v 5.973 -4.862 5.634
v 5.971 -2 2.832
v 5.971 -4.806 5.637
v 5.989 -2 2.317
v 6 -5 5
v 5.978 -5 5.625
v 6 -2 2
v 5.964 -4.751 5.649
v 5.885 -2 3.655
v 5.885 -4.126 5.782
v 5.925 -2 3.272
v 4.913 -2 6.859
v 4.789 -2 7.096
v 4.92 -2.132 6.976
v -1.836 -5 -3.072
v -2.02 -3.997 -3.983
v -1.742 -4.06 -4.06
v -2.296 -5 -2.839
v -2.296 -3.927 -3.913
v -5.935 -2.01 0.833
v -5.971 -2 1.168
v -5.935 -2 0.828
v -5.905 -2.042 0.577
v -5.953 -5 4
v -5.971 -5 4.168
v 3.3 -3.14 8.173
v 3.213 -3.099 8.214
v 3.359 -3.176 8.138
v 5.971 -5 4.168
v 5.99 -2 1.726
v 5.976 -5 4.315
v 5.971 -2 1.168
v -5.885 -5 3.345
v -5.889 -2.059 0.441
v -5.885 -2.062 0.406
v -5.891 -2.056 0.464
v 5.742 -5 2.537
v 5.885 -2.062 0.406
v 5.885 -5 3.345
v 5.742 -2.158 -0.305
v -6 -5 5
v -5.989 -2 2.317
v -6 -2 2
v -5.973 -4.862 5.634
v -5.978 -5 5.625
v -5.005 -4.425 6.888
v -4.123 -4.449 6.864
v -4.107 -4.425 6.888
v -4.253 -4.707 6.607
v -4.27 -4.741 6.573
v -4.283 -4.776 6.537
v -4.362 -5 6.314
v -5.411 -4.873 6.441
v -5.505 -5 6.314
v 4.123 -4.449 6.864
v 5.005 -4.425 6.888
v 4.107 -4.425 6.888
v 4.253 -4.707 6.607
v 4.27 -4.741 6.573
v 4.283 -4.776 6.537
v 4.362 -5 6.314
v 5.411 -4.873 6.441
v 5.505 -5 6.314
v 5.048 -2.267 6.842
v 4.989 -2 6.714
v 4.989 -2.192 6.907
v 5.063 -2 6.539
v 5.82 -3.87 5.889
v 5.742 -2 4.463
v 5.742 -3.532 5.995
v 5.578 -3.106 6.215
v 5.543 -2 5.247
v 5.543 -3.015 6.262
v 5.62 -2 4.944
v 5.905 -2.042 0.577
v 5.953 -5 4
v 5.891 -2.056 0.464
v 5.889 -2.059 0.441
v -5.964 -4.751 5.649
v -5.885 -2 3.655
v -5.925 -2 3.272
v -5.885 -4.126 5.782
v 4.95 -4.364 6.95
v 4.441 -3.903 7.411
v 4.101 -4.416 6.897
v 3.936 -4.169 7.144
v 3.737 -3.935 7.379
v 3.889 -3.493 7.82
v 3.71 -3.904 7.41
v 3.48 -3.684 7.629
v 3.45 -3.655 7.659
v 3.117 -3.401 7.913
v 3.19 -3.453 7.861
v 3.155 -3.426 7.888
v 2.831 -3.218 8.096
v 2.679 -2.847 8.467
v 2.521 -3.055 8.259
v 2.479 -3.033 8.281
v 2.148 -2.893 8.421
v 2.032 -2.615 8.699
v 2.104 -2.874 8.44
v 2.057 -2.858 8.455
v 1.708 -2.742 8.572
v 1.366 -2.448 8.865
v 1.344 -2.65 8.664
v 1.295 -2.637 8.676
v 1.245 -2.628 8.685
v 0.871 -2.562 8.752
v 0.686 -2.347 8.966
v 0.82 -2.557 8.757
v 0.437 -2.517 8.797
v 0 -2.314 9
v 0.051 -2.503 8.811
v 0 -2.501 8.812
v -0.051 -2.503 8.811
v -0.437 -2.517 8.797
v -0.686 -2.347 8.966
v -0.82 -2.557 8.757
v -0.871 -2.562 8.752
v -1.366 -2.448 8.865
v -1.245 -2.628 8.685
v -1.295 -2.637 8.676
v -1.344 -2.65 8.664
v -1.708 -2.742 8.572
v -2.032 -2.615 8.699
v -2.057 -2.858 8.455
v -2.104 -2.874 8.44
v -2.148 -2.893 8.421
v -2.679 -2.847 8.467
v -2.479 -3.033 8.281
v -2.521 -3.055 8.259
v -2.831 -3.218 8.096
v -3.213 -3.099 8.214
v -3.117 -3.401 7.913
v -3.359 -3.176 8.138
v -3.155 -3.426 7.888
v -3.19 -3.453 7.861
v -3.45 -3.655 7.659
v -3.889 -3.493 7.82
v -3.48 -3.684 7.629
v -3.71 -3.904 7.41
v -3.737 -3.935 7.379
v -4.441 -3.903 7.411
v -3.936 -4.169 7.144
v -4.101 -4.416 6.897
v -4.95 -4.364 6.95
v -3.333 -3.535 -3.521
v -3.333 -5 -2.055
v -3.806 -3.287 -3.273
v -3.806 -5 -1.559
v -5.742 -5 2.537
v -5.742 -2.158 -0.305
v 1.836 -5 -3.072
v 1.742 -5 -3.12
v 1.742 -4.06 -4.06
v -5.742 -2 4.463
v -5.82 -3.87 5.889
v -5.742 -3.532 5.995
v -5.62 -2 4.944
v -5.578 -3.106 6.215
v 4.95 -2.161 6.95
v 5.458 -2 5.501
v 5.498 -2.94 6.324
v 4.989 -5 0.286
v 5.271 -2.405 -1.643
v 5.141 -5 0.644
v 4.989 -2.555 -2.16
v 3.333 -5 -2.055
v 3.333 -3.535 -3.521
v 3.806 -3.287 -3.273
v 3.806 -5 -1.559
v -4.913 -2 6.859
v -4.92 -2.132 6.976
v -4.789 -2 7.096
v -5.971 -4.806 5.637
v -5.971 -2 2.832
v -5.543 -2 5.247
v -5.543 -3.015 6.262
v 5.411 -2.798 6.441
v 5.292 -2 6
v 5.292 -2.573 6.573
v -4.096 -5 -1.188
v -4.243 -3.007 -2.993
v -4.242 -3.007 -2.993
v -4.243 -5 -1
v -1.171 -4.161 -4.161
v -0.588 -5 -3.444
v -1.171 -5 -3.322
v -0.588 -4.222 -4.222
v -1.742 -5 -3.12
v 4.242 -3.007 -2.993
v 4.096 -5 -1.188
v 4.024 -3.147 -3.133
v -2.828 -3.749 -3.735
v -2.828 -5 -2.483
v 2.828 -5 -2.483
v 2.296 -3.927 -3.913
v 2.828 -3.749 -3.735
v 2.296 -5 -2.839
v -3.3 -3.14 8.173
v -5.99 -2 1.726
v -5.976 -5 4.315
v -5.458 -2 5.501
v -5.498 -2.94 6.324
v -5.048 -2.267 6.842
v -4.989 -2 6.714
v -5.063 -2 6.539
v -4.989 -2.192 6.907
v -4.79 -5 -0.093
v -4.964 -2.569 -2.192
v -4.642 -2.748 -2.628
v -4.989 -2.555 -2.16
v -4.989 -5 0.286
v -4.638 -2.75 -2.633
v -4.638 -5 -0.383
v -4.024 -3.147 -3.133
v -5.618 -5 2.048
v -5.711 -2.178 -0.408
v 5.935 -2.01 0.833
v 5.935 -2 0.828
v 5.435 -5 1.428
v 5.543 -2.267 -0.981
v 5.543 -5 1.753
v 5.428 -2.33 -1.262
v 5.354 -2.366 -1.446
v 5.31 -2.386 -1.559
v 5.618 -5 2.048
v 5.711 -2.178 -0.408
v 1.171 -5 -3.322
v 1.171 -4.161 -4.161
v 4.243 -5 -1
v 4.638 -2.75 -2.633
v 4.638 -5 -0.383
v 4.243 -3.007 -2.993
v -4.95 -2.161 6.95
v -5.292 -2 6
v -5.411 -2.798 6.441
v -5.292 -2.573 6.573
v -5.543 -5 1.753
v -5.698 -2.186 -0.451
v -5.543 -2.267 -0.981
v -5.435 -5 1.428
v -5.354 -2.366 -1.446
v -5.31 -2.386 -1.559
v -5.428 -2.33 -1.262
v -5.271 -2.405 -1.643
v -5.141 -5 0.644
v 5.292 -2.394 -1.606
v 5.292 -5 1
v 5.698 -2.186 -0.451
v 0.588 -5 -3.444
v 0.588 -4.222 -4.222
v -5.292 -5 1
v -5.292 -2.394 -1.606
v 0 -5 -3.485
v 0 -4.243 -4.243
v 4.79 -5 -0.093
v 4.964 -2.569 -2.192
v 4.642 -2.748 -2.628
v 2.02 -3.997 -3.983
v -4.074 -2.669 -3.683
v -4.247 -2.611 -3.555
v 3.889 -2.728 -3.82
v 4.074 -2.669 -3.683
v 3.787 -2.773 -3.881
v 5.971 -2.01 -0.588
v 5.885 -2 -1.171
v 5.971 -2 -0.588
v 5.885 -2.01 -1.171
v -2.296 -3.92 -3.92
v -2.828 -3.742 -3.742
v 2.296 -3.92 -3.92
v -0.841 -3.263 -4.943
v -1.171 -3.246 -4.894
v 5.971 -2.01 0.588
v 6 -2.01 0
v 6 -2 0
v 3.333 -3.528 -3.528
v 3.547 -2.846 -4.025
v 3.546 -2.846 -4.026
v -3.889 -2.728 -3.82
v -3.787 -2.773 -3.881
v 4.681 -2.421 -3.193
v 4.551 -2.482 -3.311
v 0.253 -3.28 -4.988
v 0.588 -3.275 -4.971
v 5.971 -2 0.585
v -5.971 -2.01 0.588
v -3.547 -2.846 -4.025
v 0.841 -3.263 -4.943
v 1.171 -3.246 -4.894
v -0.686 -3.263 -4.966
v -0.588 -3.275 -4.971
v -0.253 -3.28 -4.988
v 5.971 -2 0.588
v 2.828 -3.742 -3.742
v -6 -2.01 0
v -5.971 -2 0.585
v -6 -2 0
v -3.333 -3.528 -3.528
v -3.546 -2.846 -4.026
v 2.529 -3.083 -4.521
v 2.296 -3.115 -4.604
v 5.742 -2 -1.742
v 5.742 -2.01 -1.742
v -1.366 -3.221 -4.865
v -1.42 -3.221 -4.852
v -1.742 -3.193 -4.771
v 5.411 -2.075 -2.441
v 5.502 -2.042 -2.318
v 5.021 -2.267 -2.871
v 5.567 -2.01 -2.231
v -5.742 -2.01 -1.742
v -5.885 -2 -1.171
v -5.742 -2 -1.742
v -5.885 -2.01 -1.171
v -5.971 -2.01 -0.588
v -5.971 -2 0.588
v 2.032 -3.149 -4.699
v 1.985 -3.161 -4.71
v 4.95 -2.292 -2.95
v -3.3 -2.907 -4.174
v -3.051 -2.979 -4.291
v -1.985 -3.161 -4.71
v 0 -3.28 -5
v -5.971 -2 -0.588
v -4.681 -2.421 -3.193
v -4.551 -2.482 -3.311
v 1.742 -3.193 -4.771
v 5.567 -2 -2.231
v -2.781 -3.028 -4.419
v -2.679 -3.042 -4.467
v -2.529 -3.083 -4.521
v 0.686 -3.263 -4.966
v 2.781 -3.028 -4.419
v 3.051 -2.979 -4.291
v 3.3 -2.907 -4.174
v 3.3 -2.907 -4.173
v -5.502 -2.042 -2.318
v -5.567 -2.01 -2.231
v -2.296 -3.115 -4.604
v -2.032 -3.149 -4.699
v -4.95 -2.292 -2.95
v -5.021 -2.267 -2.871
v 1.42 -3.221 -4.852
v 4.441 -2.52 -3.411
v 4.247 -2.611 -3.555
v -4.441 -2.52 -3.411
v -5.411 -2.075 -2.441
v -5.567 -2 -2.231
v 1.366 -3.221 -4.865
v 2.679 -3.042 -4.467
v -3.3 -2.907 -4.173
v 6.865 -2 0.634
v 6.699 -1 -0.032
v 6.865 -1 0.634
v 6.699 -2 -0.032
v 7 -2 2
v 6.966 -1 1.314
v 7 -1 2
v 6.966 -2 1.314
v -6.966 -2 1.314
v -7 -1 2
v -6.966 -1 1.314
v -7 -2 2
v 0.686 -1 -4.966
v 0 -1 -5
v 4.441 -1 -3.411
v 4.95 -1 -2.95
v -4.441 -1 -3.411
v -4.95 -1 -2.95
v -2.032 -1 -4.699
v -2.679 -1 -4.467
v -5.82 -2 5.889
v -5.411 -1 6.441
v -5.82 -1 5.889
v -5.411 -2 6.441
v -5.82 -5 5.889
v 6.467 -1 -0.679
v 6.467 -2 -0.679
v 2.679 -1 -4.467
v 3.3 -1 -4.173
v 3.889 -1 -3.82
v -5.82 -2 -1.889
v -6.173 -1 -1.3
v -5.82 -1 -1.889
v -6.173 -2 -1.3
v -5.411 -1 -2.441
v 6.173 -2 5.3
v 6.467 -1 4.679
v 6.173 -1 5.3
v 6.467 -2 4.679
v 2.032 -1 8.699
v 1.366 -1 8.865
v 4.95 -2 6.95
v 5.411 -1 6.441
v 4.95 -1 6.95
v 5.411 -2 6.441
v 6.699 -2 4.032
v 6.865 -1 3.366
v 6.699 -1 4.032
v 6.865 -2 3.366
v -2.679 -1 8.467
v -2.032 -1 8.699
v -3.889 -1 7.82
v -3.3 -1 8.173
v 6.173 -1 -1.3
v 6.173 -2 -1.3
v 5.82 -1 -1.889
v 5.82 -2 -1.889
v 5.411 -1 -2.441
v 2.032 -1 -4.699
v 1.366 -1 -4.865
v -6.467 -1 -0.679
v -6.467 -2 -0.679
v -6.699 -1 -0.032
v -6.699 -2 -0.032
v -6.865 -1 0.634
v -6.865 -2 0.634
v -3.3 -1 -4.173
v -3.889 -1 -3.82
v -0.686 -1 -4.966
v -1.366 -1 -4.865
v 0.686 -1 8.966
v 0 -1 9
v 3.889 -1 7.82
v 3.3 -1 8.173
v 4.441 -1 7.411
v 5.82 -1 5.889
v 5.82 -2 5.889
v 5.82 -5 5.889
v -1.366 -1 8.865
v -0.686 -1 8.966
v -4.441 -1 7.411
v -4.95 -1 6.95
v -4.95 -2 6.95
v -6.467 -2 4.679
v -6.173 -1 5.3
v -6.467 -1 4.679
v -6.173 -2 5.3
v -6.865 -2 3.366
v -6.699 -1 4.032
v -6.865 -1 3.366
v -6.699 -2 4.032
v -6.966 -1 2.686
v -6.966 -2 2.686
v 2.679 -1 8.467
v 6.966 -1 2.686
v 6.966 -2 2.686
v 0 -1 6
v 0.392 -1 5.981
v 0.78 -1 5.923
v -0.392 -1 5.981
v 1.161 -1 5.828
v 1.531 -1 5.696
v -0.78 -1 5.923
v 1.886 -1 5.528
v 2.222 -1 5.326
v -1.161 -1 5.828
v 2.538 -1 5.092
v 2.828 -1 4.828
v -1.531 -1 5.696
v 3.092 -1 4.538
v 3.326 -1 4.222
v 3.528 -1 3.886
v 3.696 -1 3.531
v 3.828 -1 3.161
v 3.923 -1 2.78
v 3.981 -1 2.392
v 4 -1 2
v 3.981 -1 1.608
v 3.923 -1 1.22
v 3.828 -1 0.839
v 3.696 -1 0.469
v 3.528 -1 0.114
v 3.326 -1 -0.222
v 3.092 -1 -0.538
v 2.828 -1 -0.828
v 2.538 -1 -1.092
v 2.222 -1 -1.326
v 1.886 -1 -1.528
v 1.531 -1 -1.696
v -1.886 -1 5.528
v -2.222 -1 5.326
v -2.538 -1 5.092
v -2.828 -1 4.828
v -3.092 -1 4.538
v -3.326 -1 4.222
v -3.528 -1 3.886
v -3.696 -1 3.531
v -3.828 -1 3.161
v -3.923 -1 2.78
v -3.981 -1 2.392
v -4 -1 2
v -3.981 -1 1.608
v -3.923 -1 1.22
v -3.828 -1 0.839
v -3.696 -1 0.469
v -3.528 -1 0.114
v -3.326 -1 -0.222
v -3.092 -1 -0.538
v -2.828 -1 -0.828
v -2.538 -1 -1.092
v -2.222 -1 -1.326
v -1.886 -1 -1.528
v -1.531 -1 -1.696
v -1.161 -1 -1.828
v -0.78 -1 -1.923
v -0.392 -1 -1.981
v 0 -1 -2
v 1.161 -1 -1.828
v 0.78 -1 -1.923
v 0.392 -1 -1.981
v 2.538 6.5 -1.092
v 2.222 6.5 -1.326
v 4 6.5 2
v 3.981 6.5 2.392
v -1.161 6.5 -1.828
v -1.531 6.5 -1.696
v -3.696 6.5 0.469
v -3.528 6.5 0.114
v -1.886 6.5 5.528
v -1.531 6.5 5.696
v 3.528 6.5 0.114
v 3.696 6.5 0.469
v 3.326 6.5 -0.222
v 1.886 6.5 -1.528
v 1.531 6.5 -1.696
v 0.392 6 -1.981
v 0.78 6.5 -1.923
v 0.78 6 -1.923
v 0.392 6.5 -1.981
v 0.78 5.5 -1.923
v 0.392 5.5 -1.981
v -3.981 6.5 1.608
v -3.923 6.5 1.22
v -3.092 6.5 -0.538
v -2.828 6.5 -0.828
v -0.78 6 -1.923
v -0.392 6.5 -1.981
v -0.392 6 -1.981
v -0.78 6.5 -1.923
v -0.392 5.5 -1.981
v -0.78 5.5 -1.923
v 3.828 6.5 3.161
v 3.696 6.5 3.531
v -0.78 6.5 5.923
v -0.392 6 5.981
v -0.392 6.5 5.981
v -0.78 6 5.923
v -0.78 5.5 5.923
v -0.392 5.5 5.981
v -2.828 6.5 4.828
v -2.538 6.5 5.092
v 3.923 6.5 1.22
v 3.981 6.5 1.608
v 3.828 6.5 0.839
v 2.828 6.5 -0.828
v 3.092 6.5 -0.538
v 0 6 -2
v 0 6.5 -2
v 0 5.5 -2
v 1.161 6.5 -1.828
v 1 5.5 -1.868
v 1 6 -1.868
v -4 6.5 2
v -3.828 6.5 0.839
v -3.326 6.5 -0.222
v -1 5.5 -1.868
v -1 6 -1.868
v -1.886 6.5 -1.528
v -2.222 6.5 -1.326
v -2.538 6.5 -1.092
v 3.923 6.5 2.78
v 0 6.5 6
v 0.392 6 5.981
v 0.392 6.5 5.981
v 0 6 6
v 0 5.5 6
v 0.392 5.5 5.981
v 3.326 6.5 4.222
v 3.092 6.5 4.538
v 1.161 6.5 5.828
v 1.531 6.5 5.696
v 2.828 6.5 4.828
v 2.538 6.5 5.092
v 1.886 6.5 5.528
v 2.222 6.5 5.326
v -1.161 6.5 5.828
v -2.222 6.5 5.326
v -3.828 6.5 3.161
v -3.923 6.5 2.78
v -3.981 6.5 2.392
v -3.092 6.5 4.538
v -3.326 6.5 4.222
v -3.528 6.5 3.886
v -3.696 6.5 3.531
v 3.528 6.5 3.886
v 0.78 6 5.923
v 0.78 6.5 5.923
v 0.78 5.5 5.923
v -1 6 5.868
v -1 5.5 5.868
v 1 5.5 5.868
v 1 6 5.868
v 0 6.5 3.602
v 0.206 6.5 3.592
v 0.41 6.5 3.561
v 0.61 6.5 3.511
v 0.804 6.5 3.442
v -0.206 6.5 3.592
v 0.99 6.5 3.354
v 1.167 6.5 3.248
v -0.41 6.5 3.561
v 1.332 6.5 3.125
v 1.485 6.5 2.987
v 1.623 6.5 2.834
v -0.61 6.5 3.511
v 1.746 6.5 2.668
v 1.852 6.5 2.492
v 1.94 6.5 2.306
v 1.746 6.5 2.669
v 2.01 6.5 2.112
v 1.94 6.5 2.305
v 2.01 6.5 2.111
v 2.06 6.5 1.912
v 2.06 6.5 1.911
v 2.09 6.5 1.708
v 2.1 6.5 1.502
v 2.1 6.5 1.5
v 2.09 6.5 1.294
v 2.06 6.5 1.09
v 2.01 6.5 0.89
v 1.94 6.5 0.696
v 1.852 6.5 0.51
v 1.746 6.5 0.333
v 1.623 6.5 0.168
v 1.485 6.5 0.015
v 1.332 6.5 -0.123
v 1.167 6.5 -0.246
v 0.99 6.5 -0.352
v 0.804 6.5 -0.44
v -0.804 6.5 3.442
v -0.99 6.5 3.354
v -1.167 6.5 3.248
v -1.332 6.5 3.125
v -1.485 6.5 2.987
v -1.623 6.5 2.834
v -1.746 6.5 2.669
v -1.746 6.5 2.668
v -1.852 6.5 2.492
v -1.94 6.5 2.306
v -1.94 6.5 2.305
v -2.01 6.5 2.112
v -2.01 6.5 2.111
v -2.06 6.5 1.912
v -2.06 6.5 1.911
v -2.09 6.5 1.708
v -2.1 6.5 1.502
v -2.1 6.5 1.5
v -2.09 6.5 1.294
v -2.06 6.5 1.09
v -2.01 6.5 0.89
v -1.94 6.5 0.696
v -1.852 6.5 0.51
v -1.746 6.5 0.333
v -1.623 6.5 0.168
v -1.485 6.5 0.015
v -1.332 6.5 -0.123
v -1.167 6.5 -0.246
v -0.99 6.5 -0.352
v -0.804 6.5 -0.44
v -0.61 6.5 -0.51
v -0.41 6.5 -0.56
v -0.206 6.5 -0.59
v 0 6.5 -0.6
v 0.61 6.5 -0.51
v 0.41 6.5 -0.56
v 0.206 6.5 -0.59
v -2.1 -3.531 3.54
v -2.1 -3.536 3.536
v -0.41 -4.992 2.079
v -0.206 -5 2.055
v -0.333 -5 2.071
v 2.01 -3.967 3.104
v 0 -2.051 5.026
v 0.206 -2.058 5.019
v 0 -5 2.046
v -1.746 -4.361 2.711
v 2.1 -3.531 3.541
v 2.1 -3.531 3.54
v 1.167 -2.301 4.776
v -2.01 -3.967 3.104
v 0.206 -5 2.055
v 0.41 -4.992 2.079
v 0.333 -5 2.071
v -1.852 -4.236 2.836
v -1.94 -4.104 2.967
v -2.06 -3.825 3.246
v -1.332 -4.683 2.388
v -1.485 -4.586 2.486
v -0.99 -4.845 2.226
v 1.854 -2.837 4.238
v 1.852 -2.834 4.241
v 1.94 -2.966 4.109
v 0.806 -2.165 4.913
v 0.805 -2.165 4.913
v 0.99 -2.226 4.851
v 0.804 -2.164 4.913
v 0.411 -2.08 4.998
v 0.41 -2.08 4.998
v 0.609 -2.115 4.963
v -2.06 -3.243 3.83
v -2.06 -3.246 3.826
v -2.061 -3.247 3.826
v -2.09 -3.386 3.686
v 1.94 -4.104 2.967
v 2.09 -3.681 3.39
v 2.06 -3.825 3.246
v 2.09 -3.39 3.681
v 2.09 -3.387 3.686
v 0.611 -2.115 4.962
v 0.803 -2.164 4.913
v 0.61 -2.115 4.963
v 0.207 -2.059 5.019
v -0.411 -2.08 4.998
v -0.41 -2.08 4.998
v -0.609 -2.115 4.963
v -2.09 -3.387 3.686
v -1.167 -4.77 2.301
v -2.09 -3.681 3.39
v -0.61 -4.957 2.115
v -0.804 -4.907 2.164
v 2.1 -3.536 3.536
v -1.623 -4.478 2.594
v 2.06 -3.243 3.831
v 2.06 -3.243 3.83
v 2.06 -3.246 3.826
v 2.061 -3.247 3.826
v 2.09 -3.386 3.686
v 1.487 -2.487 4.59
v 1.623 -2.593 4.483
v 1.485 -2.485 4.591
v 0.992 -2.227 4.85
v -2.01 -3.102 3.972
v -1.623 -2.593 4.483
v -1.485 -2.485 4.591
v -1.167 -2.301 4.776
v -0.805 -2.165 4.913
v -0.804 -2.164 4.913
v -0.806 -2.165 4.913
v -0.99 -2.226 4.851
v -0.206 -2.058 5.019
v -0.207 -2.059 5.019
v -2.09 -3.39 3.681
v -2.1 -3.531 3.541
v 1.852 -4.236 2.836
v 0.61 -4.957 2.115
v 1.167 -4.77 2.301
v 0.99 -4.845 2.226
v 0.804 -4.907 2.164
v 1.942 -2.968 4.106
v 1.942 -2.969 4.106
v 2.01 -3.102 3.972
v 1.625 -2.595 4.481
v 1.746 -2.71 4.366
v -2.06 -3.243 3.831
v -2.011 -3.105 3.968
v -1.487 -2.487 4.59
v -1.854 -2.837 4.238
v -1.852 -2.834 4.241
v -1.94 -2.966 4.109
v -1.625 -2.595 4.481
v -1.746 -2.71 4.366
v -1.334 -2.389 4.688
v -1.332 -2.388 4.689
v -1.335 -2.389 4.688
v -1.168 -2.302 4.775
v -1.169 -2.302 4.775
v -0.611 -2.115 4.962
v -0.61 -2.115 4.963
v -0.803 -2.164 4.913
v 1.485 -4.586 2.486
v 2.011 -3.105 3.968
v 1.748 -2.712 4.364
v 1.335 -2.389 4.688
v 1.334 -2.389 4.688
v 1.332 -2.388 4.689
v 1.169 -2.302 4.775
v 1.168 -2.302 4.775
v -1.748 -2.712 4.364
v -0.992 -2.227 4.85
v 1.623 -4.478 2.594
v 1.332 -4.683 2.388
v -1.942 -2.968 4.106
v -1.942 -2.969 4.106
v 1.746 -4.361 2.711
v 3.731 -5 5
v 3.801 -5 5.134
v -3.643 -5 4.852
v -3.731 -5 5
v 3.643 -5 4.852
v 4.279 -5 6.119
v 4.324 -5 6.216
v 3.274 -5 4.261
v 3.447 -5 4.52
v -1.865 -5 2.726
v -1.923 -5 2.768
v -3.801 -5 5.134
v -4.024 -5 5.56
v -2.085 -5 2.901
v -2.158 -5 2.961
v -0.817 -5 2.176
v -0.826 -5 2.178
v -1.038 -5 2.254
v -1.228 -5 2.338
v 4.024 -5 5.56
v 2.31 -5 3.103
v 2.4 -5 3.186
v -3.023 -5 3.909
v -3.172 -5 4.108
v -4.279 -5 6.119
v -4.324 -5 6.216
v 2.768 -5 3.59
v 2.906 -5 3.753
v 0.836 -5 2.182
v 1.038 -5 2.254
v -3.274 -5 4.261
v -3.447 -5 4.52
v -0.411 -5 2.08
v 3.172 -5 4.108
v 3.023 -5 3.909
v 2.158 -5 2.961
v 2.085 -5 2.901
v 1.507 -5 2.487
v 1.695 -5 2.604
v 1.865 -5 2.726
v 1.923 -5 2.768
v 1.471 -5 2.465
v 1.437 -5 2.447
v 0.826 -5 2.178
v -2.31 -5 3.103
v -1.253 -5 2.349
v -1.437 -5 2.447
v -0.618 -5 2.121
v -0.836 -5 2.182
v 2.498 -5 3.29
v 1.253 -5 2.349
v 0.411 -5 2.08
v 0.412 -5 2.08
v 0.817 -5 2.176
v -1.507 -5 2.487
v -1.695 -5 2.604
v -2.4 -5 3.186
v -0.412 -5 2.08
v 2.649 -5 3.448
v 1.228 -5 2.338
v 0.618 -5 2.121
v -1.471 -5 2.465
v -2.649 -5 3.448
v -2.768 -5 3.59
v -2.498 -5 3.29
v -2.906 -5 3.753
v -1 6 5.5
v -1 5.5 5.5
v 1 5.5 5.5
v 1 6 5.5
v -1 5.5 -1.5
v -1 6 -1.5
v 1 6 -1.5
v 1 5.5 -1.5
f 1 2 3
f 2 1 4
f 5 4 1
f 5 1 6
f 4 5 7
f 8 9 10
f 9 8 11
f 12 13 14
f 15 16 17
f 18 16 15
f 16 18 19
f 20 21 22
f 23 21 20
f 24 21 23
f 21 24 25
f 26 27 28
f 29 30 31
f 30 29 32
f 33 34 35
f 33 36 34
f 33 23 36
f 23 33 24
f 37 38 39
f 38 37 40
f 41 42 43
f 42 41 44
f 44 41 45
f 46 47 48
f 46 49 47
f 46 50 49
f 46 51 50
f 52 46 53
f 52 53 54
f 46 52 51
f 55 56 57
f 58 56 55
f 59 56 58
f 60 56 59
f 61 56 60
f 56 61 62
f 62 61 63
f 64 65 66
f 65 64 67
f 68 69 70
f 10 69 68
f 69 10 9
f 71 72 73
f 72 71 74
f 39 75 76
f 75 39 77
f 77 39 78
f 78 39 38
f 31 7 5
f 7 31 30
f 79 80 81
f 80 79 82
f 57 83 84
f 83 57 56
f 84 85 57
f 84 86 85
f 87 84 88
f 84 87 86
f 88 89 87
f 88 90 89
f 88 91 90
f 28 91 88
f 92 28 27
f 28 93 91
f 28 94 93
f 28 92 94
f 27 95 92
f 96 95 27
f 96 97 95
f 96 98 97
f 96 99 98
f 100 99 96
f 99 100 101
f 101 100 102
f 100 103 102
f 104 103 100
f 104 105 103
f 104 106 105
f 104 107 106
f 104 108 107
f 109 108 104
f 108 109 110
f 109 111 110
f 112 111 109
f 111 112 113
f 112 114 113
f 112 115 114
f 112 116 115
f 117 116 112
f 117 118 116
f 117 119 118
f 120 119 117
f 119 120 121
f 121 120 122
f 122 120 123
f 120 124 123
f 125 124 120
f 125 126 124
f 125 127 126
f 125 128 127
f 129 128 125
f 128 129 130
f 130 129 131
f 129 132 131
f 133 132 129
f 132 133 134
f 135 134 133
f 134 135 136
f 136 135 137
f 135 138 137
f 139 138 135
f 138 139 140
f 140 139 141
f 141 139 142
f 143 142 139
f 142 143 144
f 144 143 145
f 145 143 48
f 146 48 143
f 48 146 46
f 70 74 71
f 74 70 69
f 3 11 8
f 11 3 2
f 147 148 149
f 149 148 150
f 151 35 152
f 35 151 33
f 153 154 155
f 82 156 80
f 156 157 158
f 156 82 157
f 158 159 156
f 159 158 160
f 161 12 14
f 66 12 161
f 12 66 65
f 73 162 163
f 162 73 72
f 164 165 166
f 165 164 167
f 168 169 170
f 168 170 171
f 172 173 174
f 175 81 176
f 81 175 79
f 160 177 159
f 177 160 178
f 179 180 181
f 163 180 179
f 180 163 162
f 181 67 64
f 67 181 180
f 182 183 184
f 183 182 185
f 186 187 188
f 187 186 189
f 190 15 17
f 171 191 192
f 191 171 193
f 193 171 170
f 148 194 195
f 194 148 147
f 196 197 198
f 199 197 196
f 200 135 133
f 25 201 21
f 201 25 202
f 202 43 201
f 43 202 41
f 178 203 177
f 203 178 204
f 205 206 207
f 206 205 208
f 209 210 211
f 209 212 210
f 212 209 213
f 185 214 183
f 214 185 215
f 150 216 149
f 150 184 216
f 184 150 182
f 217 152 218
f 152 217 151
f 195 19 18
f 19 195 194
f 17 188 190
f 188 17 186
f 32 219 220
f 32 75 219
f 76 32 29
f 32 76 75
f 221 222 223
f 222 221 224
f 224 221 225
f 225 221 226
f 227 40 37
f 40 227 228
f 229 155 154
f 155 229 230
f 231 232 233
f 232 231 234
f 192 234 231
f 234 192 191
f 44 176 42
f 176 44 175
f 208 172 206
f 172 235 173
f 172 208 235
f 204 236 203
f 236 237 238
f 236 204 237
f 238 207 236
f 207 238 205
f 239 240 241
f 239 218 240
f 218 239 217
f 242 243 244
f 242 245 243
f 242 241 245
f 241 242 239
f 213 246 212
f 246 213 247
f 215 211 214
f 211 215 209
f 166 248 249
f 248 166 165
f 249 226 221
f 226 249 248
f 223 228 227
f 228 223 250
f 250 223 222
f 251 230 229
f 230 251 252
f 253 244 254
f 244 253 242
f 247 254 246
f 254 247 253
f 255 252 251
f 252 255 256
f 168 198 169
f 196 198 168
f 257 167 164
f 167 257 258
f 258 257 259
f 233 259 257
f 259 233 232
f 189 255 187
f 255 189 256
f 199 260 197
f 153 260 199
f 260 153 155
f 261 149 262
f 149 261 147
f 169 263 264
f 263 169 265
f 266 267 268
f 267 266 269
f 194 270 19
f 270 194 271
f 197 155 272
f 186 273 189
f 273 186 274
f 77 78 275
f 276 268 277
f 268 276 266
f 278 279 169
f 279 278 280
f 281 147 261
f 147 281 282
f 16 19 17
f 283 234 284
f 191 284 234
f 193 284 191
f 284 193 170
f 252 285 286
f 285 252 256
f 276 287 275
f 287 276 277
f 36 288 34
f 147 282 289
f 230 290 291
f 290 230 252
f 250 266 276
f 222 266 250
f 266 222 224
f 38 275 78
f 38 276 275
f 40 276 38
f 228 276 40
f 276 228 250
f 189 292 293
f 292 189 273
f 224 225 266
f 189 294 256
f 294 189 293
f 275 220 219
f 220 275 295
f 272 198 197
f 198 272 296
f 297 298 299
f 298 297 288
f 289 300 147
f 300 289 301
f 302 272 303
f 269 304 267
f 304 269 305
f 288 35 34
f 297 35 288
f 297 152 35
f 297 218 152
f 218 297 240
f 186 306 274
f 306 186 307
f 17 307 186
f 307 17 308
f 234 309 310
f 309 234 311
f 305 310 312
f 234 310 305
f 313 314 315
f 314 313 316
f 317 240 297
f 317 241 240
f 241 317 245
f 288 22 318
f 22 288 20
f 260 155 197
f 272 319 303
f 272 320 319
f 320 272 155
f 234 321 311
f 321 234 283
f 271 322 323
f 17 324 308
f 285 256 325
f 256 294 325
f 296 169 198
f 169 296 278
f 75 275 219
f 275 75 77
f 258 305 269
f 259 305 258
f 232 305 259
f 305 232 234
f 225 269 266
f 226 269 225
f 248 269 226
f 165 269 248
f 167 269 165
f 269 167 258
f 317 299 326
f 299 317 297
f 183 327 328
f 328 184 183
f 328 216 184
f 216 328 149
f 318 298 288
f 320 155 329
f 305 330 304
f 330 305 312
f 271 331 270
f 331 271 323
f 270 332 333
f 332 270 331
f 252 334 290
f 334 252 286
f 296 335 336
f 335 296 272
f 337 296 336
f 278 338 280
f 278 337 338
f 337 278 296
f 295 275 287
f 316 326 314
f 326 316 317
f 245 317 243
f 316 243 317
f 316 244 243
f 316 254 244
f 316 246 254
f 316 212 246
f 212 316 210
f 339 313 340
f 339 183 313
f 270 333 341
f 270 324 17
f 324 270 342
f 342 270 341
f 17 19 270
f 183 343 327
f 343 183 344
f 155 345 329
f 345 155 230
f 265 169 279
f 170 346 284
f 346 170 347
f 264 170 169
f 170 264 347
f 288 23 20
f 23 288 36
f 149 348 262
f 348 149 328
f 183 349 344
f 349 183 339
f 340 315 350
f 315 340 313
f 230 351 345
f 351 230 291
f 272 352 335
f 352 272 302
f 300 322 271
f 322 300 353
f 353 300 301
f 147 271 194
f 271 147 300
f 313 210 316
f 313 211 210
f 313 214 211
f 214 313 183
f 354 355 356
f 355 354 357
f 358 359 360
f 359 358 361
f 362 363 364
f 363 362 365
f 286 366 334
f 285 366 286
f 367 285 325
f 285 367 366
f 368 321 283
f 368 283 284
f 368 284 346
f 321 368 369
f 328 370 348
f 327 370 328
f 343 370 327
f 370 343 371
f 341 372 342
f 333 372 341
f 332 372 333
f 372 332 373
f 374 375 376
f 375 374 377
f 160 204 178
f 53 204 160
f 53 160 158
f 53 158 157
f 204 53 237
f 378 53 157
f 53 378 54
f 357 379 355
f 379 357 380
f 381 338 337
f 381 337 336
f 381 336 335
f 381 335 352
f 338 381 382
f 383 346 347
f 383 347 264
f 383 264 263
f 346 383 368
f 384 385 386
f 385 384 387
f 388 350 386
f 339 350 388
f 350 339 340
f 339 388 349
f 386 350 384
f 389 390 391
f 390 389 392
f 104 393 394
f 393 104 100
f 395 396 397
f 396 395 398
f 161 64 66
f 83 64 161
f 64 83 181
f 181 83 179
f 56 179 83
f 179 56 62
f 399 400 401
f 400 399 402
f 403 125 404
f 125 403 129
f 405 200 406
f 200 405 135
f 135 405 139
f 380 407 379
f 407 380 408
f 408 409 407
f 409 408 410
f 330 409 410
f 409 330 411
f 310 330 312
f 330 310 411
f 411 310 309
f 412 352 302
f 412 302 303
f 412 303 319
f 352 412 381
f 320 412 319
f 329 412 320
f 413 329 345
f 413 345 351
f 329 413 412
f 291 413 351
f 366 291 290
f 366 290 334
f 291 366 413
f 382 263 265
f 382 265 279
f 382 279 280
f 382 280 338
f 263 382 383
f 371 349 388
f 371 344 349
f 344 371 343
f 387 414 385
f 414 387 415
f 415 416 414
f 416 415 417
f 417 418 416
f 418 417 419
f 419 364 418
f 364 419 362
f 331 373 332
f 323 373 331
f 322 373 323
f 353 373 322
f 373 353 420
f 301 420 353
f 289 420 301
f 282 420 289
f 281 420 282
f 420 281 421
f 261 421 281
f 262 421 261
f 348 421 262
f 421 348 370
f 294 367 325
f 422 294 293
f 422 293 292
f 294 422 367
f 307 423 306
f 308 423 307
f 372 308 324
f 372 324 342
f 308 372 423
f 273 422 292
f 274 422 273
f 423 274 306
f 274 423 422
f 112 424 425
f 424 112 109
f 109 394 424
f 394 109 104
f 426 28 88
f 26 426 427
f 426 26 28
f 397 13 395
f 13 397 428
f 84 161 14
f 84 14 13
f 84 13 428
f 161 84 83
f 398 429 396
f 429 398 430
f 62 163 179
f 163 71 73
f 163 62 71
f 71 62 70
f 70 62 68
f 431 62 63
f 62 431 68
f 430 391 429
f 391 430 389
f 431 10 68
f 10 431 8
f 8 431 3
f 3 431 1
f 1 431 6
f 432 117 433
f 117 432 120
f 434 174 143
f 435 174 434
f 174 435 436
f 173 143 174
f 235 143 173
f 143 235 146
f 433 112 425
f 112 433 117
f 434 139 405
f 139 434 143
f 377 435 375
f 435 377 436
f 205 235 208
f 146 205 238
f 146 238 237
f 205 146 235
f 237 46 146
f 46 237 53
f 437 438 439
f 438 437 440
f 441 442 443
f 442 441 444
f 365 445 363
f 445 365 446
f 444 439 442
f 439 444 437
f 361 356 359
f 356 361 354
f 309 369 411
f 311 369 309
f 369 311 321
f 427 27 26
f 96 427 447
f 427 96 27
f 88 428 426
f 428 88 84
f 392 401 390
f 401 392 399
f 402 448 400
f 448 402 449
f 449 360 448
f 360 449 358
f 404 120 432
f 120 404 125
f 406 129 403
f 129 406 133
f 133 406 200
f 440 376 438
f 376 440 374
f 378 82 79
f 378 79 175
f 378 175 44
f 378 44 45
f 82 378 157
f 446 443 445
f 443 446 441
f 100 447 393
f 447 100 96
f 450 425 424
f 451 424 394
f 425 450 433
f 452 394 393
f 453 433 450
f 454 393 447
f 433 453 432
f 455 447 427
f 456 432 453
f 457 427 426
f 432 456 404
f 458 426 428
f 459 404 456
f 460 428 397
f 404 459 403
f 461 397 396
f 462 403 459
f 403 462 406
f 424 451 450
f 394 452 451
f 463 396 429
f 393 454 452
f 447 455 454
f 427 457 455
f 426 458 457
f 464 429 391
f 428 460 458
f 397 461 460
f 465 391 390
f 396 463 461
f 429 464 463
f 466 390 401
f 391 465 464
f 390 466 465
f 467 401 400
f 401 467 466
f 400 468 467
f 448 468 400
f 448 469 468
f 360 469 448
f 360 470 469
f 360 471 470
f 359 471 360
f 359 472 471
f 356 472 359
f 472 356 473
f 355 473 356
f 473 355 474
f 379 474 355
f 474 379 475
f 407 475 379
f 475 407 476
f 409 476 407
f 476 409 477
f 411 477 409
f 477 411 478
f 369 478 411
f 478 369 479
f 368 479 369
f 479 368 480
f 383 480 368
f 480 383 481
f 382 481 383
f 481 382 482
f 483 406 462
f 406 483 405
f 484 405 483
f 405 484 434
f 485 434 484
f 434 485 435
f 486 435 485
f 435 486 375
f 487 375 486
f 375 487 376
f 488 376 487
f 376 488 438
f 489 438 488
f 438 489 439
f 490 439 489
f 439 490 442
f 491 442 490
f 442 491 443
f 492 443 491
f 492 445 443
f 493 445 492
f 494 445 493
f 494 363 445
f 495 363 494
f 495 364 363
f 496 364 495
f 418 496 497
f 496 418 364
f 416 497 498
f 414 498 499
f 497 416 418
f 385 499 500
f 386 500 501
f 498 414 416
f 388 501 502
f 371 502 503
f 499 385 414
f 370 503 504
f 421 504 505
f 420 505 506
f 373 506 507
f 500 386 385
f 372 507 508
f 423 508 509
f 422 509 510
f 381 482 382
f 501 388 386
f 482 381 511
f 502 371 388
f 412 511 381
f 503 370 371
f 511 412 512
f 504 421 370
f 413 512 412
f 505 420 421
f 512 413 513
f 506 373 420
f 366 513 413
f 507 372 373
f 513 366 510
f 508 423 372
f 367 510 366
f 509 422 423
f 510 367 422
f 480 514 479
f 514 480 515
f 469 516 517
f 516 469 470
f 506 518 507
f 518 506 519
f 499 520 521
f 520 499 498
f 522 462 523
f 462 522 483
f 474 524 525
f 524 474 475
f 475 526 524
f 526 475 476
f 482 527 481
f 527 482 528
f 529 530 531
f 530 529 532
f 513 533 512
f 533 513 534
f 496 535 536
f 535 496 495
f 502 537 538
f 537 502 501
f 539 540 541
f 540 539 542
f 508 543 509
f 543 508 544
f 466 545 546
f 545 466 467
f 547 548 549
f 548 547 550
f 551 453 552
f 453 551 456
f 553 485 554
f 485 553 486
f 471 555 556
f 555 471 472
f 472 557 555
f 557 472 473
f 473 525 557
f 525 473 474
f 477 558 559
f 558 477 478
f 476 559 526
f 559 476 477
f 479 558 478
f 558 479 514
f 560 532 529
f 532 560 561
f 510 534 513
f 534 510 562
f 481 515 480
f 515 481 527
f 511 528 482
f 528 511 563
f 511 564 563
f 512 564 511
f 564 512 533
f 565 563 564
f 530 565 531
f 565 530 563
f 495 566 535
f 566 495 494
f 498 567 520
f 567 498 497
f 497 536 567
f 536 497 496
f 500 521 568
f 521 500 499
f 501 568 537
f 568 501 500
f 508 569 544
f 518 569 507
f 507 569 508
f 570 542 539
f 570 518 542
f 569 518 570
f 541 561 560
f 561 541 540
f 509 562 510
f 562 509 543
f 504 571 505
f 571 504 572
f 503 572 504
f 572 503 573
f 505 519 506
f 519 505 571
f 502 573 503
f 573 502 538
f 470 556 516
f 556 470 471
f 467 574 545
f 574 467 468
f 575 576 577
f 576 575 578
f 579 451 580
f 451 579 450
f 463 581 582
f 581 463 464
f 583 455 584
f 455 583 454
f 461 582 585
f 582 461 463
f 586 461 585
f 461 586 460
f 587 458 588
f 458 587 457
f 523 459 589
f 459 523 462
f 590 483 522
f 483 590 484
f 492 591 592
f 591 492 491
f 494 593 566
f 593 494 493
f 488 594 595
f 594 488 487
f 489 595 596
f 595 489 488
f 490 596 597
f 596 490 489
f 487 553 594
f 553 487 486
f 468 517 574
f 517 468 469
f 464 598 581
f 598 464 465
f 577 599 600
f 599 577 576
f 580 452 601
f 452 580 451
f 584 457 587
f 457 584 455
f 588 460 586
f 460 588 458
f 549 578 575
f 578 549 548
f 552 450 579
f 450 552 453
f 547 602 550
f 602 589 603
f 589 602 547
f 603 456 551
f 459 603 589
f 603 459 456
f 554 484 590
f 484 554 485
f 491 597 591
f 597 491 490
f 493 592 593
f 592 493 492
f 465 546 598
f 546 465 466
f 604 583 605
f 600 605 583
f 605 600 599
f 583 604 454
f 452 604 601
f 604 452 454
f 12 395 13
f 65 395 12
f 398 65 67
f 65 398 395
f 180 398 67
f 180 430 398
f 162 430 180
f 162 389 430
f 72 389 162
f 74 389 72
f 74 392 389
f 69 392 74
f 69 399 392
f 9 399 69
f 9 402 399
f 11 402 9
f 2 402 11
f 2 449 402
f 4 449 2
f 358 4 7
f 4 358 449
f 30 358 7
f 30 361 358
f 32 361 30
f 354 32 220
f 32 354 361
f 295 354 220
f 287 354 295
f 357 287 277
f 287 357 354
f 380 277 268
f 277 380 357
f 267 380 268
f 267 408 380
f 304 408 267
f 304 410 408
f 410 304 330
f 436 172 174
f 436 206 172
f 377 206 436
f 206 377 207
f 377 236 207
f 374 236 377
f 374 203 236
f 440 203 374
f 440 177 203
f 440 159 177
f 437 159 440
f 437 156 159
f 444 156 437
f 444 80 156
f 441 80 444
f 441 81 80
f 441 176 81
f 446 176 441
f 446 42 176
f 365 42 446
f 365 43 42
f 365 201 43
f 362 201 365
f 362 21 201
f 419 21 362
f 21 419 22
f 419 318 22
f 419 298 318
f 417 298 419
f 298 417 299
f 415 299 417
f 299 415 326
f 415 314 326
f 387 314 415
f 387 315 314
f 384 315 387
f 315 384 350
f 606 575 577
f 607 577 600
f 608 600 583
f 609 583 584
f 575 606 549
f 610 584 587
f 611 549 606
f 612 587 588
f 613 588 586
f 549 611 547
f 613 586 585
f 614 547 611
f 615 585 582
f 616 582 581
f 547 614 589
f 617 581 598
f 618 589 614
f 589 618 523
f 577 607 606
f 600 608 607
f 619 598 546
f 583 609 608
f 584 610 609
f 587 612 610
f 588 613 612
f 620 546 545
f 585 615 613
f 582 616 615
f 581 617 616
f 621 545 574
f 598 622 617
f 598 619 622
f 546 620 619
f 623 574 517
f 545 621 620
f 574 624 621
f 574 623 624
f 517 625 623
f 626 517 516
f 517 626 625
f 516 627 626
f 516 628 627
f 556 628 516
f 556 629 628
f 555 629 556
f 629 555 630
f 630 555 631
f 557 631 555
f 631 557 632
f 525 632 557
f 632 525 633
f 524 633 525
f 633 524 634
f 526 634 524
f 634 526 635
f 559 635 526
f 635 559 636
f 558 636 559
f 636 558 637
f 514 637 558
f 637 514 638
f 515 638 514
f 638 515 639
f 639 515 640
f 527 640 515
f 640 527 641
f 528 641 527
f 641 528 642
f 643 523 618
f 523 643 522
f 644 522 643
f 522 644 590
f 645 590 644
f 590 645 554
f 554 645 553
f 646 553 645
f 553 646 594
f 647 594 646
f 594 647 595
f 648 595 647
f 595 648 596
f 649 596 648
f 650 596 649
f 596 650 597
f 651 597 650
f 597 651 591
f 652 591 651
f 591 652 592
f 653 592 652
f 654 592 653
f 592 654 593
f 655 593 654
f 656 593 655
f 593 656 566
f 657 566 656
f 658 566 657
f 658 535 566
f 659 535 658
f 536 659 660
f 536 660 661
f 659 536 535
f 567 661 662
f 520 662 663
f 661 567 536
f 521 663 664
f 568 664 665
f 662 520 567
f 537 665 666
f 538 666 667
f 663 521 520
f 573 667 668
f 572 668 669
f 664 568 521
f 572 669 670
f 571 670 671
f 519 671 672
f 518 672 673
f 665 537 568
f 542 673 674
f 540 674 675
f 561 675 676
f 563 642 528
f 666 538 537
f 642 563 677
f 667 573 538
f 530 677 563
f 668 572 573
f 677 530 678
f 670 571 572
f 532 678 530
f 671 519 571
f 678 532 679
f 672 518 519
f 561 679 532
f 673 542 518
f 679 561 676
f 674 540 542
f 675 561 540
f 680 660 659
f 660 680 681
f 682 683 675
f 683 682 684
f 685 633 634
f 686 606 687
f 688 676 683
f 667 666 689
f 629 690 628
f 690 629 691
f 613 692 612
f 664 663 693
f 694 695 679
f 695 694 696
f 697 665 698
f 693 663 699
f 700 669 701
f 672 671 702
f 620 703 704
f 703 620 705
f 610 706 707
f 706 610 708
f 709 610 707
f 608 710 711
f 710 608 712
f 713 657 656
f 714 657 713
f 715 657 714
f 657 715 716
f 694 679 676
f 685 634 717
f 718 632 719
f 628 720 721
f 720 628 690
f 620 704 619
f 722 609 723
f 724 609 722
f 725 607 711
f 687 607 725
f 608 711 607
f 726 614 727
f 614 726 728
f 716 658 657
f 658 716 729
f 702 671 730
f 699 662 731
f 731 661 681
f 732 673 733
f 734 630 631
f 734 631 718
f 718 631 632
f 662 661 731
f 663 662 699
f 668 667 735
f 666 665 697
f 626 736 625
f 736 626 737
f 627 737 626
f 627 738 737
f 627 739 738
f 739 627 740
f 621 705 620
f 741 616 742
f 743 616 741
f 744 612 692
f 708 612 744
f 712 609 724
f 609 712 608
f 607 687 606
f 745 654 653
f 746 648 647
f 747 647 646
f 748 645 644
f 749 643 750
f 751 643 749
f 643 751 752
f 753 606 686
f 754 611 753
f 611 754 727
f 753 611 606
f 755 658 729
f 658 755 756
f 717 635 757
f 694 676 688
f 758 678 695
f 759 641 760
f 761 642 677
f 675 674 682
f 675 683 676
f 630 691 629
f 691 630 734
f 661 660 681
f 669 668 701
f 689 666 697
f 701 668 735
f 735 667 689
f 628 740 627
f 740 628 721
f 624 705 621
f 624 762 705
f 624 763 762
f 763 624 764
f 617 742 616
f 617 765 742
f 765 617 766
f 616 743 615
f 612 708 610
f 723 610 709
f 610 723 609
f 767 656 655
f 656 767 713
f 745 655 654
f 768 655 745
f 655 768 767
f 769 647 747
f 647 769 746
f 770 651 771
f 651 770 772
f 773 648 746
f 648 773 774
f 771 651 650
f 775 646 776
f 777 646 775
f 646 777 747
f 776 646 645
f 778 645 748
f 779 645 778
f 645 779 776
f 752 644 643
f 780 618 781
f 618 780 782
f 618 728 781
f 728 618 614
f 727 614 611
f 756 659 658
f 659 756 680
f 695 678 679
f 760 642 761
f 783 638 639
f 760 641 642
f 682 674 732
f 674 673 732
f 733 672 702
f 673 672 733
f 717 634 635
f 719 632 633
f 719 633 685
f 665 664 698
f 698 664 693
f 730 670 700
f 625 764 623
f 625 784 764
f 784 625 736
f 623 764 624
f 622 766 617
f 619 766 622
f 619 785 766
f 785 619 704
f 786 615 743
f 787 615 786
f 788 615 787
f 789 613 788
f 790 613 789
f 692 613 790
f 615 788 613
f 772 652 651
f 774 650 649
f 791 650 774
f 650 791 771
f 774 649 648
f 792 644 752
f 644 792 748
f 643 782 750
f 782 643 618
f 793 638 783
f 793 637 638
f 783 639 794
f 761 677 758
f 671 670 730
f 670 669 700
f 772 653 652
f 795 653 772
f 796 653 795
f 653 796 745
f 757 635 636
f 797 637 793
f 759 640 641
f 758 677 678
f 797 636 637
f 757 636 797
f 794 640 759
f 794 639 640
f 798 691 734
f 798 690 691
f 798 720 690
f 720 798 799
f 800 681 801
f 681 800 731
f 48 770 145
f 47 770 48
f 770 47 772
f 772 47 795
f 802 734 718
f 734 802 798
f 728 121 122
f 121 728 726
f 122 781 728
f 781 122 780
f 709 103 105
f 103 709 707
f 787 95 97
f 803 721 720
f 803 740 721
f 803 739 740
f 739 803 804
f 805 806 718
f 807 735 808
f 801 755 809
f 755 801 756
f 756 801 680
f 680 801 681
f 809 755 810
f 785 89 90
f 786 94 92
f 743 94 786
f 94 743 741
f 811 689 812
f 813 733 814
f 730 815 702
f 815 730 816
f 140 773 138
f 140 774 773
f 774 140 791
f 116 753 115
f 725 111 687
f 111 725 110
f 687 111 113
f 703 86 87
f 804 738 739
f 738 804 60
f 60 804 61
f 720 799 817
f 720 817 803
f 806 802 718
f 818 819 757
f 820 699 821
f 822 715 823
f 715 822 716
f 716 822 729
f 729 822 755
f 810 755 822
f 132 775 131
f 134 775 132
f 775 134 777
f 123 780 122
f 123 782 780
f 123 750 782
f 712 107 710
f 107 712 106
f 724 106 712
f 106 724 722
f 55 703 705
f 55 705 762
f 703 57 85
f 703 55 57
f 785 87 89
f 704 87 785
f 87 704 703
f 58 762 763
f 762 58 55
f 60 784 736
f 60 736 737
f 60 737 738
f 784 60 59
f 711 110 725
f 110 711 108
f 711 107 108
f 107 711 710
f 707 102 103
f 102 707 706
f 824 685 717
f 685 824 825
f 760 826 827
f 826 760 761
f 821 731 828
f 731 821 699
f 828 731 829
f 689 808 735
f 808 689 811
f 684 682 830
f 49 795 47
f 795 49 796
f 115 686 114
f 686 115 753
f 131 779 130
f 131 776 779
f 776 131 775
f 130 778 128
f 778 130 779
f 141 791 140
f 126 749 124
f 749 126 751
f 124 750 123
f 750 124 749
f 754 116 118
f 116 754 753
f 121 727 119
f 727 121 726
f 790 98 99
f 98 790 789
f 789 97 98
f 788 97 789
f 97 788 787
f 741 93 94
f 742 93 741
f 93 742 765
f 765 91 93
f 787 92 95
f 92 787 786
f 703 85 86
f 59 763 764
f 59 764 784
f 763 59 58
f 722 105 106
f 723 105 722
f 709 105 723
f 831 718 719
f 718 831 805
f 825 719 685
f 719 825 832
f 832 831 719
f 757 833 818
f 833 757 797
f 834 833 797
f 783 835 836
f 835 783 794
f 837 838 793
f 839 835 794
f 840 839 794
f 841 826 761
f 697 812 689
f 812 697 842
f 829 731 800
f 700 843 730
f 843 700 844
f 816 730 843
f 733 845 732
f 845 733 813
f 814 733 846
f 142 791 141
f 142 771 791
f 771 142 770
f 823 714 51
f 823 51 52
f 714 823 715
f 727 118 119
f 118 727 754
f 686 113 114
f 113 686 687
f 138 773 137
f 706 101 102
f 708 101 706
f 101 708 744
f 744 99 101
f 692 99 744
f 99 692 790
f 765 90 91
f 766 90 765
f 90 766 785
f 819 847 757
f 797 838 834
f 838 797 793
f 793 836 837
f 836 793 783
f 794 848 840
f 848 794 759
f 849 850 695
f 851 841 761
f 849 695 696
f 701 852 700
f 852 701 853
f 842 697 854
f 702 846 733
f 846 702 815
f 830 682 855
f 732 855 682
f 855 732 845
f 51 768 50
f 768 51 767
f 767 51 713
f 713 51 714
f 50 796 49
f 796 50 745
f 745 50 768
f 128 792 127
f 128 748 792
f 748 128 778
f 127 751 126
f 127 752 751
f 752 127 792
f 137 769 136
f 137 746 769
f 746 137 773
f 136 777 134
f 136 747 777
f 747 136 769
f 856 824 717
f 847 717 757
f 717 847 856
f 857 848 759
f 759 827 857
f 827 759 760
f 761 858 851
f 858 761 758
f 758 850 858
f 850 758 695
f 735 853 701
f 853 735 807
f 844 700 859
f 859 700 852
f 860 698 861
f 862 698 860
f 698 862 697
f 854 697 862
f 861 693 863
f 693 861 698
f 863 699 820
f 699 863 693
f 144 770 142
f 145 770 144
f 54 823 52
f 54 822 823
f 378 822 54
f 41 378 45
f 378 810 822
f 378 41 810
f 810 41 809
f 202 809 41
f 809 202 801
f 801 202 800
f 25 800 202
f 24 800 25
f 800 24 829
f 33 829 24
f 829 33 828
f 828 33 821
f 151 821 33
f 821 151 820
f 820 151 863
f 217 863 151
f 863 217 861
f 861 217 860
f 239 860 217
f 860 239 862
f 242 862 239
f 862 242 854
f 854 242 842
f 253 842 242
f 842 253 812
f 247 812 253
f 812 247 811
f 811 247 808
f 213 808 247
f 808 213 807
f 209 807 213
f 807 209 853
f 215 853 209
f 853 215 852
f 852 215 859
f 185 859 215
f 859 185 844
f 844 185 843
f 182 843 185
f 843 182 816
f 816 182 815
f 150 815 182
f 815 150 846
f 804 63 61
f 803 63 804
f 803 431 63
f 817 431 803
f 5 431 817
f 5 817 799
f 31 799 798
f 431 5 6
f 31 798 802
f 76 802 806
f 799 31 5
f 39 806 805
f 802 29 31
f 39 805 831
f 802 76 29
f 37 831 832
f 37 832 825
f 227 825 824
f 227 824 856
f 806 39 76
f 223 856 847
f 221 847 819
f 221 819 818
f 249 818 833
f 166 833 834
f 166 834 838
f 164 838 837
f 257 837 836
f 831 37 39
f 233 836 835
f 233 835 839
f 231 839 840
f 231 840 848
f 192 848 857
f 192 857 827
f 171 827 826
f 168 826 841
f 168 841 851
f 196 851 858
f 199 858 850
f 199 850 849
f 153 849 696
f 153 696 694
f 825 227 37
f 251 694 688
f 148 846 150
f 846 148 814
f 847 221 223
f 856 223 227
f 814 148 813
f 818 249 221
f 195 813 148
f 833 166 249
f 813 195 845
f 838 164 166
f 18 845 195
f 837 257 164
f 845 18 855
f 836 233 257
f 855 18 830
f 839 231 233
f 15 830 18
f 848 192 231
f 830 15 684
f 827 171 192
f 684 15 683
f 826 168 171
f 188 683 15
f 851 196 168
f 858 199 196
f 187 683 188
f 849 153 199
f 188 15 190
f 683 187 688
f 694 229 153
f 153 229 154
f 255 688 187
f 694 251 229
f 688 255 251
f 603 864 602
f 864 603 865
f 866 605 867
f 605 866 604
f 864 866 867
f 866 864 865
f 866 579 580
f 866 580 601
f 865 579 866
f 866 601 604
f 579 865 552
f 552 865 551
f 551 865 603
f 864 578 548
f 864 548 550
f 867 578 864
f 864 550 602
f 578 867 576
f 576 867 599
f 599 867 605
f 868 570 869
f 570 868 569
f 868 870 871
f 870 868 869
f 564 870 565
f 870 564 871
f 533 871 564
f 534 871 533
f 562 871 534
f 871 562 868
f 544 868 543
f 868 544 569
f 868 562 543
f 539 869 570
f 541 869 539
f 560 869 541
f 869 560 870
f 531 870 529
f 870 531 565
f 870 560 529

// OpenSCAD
// file: ptfe-port-dryer-box-config.scad
// PTFE Dryer Box Port — Shared Configuration

// Performance
preview = false;
$fn = preview ? 32 : 64;

// PTFE tube dimensions (standard 1.75mm filament tube)
ptfe_od        = 4.0;   // outer diameter of PTFE tube
ptfe_clearance = 0.1;   // clearance per side for snug push-fit
hole_dia       = ptfe_od + ptfe_clearance * 2;

// Dryer box wall
dryer_box_thickness = 6.5; // mm — wall thickness of the dryer box

// Filament port — angled section outside the wall where PTFE tube inserts
channel_angle  = 45;    // degrees upward from horizontal
port_dia       = 12.0;  // outer diameter of filament port
socket_depth   = 8.0;   // how far PTFE tube inserts into port
flare_dia      = hole_dia * 2.5; // chamfered opening diameter at tip
flare_depth    = 3.0;            // depth of the chamfer cone

// Wall plug — straight cylinder perpendicular through dryer box wall
plug_dia       = 8.0;   // outer diameter (match drill bit)
plug_z_offset  = 2.0;   // vertical offset to align with filament port

// Flange — vertical disc flush against outside wall surface
flange_dia     = 14.0;  // outer diameter of flange
flange_thick   = 2.0;   // flange thickness
// main file
// PTFE Dryer Box Port — Single-tube angled passthrough
// S-shaped: filament port angles 45° upward on outside of wall,
// wall plug goes straight through the dryer box wall.
// Flange sits flush and vertical against the wall surface.
include <ptfe-port-dryer-box-config.scad>

// Coordinate system:
//   Origin  = center of flange, on the wall surface
//   +Y      = into the wall (into the dryer box)
//   +Z      = up
//   -Y      = outward (away from wall)


// Cross-section settings
crosssection_view = false;
crosssection_axis = "y";  // "x", "y", or "z"

if (!crosssection_view) {
    ptfe_port_dryer_box();
} else {
    half = 50;
    intersection() {
        ptfe_port_dryer_box();
        if (crosssection_axis == "x")
            translate([0, -half, -half])
                cube([half, half * 2, half * 2]);
        if (crosssection_axis == "y")
            translate([-half, 0, -half])
                cube([half * 2, half, half * 2]);
        if (crosssection_axis == "z")
            translate([-half, -half, 0])
                cube([half * 2, half * 2, half]);
    }
}




module ptfe_port_dryer_box() {
    difference() {
        union() {
            // Flange — vertical disc on outside of wall, centered on wall plug
            translate([0, 0, plug_z_offset])
                    rotate([90, 0, 0])
                        cylinder(h = flange_thick, d = flange_dia);

            // Wall plug — straight through the wall, perpendicular
            translate([0, 0, plug_z_offset])
                    rotate([-90, 0, 0])
                        cylinder(h = dryer_box_thickness, d = plug_dia);

            // Filament port — angles upward and outward from flange
            // Hull fills the gap between the tilted port base and the flat flange
            union() {
                rotate([channel_angle, 0, 0])
                    cylinder(h = socket_depth, d = port_dia);
                hull() {
                    rotate([channel_angle, 0, 0])
                        cylinder(h = 0.01, d = port_dia);
                    rotate([90, 0, 0])
                        translate([0, 0, flange_thick])
                            cylinder(h = 0.01, d = port_dia);
                }
            }
        }

        // Single straight PTFE channel — from chamfer to wall plug exit
        hull() {
            rotate([channel_angle, 0, 0])
                translate([0, 0, socket_depth - flare_depth])
                    cylinder(h = 0.01, d = hole_dia);
            translate([0, 0, plug_z_offset - 0.5])
                rotate([-90, 0, 0])
                    translate([0, 0, dryer_box_thickness])
                        cylinder(h = 0.01, d = hole_dia);
        }

        // Chamfered opening at tip of filament port
        rotate([channel_angle, 0, 0])
            translate([0, 0, socket_depth - flare_depth])
                cylinder(h = flare_depth + 1, d1 = hole_dia, d2 = flare_dia);

        // Cut all material from y=-5 to y=-12
        translate([-flange_dia, -12, -flange_dia])
            cube([flange_dia * 2, 7, flange_dia * 2]);

        // Hollow tube along Y axis — removes material outside flange diameter
        translate([0, 0, plug_z_offset])
            rotate([-90, 0, 0])
                translate([0, 0, -socket_depth - flange_thick - 1])
                    difference() {
                        cylinder(h = socket_depth + flange_thick + dryer_box_thickness + 2, d = flange_dia * 3);
                        cylinder(h = socket_depth + flange_thick + dryer_box_thickness + 2, d = flange_dia);
                    }

        // Grip notches — cut into top and bottom of wall plug, 0.5 from exit end
        translate([-1, dryer_box_thickness - 1.0, plug_z_offset + plug_dia / 2 - 0.5])
            cube([2, 0.5, 0.5]);
        translate([-1, dryer_box_thickness - 1.0, plug_z_offset - plug_dia / 2])
            cube([2, 0.5, 0.5]);

        // Trim filament port flush with flange on wall side
        // Ring: ID = wall plug, OD = flange
        translate([0, 0, plug_z_offset])
            rotate([-90, 0, 0])
                translate([0, 0, -1])
                    difference() {
                        cylinder(h = dryer_box_thickness + 2, d = flange_dia * 2);
                        cylinder(h = dryer_box_thickness + 2, d = plug_dia);
                    }
    }
}
